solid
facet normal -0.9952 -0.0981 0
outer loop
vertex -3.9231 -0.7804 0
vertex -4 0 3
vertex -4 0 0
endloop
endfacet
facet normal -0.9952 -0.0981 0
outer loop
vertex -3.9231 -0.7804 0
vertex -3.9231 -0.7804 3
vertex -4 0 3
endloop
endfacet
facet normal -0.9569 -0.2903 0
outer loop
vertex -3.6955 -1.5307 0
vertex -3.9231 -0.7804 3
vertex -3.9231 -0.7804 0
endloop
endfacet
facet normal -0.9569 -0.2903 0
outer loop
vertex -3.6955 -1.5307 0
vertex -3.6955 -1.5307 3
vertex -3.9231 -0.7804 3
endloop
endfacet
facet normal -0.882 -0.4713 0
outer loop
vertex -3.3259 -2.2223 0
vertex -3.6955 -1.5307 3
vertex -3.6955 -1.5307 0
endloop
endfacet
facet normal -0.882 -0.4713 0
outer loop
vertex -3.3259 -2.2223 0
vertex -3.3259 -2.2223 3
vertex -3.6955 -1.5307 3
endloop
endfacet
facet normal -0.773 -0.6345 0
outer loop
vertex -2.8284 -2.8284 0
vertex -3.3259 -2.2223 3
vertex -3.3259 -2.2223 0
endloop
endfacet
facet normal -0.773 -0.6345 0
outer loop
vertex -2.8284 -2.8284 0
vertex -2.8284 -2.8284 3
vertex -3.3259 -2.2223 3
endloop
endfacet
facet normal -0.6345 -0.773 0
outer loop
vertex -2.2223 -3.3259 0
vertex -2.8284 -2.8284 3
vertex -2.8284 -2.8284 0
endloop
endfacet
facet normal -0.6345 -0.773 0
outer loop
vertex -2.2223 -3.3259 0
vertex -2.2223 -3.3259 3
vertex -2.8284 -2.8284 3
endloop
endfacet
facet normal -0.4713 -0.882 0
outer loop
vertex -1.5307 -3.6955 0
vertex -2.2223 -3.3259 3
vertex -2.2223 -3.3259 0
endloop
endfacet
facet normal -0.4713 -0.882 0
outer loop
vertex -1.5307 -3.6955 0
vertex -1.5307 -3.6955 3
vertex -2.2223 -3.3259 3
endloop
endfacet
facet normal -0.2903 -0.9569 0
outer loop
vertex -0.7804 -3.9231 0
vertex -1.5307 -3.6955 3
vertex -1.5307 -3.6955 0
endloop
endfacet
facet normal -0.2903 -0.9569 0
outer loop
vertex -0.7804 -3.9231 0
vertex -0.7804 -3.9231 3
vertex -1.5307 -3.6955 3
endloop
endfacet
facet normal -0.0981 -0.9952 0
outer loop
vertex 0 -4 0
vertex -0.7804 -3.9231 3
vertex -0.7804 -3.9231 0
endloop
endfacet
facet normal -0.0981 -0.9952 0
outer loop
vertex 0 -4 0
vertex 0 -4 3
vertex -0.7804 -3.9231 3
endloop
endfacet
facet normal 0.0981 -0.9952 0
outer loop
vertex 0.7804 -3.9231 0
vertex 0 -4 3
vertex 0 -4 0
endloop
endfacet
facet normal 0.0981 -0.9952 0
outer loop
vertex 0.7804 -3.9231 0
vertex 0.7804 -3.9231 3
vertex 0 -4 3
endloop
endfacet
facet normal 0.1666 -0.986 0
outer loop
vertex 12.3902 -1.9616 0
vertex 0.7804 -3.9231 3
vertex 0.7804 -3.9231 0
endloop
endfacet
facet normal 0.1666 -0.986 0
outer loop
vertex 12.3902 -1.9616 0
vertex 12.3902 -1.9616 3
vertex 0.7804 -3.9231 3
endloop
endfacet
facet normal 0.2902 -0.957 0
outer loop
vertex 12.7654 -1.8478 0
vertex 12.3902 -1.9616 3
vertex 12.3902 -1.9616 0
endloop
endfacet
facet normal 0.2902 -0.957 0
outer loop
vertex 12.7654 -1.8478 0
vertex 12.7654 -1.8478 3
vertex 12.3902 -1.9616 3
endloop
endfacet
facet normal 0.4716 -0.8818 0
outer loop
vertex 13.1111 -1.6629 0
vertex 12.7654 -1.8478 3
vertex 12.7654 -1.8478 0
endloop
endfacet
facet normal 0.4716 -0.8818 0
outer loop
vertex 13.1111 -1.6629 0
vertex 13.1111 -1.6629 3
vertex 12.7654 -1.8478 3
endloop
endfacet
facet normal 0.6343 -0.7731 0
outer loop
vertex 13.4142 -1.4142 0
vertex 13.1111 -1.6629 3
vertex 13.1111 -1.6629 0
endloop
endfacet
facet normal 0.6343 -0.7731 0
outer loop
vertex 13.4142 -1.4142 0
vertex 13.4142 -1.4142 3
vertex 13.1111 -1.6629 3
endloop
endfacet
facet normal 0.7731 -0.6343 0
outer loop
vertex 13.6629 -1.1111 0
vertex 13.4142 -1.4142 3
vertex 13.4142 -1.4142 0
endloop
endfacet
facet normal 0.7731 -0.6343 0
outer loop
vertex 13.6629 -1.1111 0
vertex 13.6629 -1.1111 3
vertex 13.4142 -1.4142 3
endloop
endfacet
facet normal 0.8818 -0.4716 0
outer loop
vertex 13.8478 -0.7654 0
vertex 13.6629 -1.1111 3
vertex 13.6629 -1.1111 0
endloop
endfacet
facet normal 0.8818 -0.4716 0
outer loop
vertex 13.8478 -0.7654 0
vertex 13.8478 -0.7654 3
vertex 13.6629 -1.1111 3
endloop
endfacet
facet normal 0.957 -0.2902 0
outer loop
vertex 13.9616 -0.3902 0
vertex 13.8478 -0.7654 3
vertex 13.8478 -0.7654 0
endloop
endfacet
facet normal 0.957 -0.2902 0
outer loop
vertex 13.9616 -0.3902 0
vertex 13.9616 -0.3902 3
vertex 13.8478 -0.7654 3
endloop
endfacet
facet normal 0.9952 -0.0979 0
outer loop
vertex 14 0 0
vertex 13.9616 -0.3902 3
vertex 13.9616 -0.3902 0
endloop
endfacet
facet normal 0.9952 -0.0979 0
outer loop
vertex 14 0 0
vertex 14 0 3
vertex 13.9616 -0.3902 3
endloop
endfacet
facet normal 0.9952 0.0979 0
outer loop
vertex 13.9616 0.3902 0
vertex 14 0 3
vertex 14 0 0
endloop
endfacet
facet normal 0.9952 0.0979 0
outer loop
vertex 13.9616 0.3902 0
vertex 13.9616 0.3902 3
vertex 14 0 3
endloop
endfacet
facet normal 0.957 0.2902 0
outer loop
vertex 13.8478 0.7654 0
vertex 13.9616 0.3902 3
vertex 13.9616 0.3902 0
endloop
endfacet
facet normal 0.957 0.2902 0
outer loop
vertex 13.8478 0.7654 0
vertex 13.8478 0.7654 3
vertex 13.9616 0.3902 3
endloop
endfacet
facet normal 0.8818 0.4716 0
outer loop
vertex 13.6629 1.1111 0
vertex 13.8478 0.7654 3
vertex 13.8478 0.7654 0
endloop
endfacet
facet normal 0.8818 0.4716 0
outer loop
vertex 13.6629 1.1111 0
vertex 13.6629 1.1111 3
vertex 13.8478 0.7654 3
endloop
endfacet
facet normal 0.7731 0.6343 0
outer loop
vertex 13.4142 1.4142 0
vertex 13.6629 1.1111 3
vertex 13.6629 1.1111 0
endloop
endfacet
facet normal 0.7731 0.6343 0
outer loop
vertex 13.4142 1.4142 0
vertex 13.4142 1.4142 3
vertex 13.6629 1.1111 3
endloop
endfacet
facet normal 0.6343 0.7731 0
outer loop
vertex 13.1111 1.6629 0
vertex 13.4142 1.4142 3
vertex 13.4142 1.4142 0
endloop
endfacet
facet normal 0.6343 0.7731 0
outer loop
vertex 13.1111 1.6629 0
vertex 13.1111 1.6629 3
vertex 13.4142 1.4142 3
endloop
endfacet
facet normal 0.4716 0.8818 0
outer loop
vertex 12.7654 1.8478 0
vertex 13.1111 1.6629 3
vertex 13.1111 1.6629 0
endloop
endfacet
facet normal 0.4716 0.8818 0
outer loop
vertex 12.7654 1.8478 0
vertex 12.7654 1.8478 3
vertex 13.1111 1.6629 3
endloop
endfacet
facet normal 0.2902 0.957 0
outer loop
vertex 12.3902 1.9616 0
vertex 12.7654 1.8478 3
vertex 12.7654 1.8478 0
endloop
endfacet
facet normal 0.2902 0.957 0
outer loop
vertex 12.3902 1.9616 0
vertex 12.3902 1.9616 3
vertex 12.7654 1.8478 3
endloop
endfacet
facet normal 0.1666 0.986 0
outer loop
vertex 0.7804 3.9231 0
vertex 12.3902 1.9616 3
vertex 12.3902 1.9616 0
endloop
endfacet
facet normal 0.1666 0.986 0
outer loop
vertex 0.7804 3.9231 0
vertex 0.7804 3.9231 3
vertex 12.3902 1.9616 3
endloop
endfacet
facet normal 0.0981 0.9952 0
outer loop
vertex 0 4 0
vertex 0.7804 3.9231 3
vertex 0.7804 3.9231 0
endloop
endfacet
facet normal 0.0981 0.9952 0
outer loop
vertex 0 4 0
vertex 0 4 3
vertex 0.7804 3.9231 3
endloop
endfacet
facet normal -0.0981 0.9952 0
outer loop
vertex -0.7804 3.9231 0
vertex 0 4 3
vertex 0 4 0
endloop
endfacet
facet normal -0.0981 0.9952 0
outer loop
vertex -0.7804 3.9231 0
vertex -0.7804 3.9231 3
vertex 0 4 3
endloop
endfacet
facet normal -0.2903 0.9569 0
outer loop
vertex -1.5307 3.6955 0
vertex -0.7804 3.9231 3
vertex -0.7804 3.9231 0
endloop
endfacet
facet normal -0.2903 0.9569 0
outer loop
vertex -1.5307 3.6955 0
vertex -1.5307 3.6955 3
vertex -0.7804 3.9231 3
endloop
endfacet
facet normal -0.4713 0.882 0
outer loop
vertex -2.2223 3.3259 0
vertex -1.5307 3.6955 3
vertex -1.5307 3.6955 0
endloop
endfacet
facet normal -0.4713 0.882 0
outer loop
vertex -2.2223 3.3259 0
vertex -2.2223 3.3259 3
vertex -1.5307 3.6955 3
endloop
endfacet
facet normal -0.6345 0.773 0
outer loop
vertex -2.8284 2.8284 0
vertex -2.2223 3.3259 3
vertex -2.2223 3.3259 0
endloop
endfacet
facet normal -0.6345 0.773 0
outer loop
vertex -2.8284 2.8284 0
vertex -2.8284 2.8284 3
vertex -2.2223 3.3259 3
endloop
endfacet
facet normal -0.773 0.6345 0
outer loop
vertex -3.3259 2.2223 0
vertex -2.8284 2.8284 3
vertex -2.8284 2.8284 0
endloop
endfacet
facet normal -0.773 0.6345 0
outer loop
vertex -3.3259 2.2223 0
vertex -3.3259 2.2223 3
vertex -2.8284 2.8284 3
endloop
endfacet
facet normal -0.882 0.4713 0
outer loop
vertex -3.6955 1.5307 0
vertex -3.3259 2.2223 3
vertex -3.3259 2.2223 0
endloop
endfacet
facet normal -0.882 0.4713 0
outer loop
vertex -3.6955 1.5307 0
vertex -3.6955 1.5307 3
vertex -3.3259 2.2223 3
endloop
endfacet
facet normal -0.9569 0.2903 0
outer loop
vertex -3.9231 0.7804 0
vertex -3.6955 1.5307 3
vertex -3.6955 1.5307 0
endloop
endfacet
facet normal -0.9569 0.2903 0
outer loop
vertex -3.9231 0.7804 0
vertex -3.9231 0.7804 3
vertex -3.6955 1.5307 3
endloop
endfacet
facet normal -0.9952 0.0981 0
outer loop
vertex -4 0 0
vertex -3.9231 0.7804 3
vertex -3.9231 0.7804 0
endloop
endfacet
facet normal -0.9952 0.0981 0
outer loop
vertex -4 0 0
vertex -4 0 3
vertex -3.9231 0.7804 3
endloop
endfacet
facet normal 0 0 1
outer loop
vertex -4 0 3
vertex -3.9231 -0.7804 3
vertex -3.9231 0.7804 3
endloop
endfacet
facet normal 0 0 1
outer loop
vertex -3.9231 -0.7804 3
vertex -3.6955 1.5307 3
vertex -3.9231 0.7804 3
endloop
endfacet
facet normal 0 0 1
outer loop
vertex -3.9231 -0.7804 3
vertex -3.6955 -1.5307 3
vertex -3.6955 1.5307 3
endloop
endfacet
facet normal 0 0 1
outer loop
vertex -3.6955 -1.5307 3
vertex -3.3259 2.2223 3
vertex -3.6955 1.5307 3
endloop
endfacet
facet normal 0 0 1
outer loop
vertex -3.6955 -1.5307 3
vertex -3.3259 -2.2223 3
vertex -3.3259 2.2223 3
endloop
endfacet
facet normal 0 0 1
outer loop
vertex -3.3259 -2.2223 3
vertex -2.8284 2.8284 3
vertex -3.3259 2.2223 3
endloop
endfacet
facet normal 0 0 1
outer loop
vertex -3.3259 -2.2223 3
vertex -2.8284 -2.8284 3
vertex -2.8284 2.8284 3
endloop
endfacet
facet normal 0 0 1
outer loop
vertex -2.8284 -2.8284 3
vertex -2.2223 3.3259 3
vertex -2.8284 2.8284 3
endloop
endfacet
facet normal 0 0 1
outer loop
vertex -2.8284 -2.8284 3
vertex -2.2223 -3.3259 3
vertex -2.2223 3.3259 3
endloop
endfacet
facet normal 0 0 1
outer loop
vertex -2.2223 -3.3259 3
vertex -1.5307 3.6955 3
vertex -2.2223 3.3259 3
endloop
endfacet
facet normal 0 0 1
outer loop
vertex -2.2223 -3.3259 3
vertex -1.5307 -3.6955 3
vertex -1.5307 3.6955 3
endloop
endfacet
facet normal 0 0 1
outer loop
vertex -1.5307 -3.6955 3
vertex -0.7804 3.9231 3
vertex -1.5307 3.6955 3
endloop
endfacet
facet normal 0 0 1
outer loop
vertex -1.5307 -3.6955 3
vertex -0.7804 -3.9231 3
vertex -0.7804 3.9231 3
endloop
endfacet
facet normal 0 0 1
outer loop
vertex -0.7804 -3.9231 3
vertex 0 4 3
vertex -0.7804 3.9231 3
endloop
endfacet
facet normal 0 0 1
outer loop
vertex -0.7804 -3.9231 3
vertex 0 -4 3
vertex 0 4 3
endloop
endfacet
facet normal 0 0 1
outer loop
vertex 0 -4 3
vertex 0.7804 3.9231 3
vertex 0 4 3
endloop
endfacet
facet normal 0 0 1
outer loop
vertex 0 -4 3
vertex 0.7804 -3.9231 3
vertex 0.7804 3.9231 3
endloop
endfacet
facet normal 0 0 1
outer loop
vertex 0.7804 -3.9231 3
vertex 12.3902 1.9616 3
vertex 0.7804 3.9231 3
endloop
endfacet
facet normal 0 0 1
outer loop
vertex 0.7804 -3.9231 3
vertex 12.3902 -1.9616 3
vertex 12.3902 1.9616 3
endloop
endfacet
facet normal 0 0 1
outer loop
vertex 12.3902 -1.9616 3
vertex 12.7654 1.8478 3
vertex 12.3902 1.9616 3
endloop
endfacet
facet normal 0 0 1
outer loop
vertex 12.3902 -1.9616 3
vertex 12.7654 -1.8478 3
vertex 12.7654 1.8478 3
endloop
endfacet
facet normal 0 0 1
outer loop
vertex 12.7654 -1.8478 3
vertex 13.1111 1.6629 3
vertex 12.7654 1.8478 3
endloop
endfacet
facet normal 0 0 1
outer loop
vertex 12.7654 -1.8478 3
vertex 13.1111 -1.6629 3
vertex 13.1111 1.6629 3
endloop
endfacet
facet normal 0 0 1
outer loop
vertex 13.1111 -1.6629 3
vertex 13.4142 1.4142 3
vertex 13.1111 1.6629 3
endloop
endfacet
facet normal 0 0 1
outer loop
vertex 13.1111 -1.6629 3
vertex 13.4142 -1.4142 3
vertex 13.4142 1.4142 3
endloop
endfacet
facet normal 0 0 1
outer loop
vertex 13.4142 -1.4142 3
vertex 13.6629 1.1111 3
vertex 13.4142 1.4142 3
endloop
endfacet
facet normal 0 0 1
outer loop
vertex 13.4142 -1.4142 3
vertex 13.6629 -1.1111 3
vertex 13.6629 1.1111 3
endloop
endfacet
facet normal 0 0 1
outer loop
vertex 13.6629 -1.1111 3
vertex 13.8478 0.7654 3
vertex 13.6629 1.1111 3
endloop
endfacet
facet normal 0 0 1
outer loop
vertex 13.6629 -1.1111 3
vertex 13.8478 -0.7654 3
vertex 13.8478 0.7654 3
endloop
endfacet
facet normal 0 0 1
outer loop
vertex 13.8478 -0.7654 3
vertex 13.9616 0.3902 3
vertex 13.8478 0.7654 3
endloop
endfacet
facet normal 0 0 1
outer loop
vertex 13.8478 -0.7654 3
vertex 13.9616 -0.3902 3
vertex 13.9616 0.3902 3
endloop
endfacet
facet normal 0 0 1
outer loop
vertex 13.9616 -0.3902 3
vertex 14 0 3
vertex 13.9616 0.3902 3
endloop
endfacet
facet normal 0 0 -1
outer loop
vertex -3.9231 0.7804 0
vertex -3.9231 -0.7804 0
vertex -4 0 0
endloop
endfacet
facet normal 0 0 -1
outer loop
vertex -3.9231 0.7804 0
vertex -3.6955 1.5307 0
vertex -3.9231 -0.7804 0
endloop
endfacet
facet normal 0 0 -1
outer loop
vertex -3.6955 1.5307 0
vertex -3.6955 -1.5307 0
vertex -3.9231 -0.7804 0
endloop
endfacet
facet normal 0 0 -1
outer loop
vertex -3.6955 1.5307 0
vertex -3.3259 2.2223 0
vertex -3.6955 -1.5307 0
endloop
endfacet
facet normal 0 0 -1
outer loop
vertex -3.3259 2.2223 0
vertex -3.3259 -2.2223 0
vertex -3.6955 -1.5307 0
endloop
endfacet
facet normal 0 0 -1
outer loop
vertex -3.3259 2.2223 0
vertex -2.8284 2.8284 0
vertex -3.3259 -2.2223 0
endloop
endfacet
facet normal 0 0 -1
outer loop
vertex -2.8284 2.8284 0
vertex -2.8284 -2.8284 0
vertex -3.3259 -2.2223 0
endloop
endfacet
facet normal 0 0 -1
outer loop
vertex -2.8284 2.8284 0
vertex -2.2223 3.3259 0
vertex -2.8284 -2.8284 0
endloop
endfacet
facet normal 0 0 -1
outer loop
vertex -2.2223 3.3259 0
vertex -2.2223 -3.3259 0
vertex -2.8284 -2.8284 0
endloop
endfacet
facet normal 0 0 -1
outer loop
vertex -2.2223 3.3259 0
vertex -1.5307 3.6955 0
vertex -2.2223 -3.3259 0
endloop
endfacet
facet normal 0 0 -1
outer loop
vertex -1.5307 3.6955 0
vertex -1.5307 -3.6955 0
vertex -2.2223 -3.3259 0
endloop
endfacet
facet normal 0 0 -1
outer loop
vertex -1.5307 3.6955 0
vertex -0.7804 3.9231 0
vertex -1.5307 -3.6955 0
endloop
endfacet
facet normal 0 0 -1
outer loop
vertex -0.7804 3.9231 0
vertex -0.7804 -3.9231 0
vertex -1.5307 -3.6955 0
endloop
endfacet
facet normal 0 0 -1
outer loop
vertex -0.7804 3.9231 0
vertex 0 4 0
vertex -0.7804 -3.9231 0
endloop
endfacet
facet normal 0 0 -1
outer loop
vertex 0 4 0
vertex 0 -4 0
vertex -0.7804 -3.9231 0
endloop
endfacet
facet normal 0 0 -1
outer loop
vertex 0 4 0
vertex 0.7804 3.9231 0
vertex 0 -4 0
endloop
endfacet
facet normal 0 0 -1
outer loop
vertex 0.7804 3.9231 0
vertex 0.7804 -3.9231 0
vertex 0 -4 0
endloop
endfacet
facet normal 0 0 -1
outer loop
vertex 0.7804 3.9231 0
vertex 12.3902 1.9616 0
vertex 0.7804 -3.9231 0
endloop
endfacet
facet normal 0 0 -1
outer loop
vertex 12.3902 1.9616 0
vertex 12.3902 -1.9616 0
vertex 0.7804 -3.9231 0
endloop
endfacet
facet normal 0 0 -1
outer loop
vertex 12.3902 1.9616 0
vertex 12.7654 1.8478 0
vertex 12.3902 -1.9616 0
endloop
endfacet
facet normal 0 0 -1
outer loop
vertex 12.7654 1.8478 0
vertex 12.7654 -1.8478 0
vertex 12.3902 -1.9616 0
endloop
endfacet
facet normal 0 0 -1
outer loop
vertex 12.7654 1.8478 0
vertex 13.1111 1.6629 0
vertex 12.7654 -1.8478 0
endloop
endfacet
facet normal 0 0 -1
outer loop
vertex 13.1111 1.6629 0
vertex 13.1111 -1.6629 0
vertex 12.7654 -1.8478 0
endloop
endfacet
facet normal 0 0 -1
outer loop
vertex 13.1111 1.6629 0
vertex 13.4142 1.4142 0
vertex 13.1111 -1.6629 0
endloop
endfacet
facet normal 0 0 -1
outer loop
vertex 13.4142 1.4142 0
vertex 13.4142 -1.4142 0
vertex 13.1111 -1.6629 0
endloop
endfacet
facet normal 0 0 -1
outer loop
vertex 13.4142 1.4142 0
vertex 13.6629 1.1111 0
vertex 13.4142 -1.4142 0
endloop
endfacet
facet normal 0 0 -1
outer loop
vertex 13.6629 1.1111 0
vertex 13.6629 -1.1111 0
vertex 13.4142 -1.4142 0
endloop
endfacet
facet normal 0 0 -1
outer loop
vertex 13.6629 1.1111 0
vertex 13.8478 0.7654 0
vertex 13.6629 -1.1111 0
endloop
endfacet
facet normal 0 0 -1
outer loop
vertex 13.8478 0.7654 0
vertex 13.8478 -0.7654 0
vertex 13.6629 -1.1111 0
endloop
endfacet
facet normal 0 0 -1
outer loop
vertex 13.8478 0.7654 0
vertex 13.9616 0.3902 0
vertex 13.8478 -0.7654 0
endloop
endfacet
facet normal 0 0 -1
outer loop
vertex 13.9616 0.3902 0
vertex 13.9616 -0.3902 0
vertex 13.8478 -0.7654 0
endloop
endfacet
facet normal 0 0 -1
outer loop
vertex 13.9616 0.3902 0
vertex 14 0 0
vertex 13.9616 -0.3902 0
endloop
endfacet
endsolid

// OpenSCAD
// A 2D hull, extruded. OpenSCAD hulls 2D children into a 2D region.
$fn = 32;
linear_extrude(3) hull() { circle(4); translate([12, 0]) circle(2); }
